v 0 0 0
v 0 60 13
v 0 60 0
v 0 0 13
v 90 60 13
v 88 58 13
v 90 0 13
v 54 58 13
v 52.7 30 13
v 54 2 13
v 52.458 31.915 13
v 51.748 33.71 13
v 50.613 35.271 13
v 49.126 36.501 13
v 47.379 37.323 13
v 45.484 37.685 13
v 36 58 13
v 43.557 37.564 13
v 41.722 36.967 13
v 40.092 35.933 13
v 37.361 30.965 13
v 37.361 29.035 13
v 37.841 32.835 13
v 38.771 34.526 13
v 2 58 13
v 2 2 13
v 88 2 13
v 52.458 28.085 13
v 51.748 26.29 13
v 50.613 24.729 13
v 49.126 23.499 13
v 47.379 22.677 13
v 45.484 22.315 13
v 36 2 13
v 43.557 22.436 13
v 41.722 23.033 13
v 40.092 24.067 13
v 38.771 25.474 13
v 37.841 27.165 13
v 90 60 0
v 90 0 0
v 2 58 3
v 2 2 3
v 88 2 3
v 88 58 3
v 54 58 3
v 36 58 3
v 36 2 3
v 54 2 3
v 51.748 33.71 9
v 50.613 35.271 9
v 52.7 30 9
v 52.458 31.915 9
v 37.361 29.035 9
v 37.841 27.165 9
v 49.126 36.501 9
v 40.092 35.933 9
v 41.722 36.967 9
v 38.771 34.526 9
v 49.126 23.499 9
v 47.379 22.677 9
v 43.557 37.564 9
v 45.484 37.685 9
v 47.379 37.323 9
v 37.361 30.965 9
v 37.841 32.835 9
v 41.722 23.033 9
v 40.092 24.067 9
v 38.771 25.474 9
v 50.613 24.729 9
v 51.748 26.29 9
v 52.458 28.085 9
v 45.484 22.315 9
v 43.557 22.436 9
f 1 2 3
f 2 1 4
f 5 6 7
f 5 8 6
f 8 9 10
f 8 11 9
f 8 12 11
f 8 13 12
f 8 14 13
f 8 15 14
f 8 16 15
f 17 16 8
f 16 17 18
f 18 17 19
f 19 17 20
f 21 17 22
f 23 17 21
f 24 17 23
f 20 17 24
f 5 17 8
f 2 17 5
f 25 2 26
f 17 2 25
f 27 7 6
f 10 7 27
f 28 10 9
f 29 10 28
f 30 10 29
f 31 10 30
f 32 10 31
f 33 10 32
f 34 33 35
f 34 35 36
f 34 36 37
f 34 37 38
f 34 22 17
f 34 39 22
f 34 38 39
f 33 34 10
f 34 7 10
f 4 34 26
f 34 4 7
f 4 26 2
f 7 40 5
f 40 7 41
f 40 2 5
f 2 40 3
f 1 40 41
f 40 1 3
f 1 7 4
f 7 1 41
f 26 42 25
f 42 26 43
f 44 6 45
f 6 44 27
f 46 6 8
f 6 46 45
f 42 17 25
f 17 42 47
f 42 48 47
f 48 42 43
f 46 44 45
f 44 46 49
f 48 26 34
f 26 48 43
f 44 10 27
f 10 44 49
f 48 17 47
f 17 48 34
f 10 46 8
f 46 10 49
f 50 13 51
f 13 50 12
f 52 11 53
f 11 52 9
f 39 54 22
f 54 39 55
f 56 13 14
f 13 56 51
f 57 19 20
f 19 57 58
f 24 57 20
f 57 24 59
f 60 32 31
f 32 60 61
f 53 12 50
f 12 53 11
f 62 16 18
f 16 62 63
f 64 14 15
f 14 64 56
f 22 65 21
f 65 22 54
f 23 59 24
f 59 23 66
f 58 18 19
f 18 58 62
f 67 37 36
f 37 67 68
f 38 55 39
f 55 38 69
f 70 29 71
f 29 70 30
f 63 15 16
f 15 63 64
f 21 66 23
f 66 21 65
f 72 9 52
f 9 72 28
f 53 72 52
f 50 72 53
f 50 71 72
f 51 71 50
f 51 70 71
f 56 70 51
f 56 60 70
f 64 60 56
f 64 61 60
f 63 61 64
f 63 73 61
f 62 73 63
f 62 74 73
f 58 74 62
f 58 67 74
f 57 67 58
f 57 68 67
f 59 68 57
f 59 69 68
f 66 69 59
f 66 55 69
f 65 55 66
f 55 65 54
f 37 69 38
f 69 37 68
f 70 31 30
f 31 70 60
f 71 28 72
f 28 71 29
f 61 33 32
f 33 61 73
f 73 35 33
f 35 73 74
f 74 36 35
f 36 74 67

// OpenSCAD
length = 90;
width = 60;
height = 13;
wallThickness = 2;
floorThickness = 3;
widthDividers = 0;
lengthDividers = 0;
widthDividerToSkip = -1;

//Based on magnet size:
magnetBaseOuterDiameter = 18;
magnetBaseInnerDiameter = 15.4;
magnetHeight = 4.0;


difference(){
    cube([length, width, height]);
    translate([wallThickness, wallThickness, floorThickness])
        cube([length - wallThickness * 2,width - wallThickness * 2, height - floorThickness]);
}
widthSections = widthDividers + 1;
lengthSections = lengthDividers + 1;
difference() {
    union() {
        translate([length/2 - magnetBaseOuterDiameter/2, 0, 0])
            cube([magnetBaseOuterDiameter, width, height]);
//        translate([ (length/2) * 1 + (magnetBaseOuterDiameter/2), 0, 0])
//            cube([wallThickness, width, height]);
//        translate([ (length/2) * 1 - (magnetBaseOuterDiameter/2), 0, 0])
//            cube([wallThickness, width, height]);
//        
//        translate([length/2, width/2, 0])
//            cylinder(height, d=magnetBaseOuterDiameter);
    };
    translate([length/2, width/2, height - magnetHeight])
        cylinder(magnetHeight, d=magnetBaseInnerDiameter);
};
